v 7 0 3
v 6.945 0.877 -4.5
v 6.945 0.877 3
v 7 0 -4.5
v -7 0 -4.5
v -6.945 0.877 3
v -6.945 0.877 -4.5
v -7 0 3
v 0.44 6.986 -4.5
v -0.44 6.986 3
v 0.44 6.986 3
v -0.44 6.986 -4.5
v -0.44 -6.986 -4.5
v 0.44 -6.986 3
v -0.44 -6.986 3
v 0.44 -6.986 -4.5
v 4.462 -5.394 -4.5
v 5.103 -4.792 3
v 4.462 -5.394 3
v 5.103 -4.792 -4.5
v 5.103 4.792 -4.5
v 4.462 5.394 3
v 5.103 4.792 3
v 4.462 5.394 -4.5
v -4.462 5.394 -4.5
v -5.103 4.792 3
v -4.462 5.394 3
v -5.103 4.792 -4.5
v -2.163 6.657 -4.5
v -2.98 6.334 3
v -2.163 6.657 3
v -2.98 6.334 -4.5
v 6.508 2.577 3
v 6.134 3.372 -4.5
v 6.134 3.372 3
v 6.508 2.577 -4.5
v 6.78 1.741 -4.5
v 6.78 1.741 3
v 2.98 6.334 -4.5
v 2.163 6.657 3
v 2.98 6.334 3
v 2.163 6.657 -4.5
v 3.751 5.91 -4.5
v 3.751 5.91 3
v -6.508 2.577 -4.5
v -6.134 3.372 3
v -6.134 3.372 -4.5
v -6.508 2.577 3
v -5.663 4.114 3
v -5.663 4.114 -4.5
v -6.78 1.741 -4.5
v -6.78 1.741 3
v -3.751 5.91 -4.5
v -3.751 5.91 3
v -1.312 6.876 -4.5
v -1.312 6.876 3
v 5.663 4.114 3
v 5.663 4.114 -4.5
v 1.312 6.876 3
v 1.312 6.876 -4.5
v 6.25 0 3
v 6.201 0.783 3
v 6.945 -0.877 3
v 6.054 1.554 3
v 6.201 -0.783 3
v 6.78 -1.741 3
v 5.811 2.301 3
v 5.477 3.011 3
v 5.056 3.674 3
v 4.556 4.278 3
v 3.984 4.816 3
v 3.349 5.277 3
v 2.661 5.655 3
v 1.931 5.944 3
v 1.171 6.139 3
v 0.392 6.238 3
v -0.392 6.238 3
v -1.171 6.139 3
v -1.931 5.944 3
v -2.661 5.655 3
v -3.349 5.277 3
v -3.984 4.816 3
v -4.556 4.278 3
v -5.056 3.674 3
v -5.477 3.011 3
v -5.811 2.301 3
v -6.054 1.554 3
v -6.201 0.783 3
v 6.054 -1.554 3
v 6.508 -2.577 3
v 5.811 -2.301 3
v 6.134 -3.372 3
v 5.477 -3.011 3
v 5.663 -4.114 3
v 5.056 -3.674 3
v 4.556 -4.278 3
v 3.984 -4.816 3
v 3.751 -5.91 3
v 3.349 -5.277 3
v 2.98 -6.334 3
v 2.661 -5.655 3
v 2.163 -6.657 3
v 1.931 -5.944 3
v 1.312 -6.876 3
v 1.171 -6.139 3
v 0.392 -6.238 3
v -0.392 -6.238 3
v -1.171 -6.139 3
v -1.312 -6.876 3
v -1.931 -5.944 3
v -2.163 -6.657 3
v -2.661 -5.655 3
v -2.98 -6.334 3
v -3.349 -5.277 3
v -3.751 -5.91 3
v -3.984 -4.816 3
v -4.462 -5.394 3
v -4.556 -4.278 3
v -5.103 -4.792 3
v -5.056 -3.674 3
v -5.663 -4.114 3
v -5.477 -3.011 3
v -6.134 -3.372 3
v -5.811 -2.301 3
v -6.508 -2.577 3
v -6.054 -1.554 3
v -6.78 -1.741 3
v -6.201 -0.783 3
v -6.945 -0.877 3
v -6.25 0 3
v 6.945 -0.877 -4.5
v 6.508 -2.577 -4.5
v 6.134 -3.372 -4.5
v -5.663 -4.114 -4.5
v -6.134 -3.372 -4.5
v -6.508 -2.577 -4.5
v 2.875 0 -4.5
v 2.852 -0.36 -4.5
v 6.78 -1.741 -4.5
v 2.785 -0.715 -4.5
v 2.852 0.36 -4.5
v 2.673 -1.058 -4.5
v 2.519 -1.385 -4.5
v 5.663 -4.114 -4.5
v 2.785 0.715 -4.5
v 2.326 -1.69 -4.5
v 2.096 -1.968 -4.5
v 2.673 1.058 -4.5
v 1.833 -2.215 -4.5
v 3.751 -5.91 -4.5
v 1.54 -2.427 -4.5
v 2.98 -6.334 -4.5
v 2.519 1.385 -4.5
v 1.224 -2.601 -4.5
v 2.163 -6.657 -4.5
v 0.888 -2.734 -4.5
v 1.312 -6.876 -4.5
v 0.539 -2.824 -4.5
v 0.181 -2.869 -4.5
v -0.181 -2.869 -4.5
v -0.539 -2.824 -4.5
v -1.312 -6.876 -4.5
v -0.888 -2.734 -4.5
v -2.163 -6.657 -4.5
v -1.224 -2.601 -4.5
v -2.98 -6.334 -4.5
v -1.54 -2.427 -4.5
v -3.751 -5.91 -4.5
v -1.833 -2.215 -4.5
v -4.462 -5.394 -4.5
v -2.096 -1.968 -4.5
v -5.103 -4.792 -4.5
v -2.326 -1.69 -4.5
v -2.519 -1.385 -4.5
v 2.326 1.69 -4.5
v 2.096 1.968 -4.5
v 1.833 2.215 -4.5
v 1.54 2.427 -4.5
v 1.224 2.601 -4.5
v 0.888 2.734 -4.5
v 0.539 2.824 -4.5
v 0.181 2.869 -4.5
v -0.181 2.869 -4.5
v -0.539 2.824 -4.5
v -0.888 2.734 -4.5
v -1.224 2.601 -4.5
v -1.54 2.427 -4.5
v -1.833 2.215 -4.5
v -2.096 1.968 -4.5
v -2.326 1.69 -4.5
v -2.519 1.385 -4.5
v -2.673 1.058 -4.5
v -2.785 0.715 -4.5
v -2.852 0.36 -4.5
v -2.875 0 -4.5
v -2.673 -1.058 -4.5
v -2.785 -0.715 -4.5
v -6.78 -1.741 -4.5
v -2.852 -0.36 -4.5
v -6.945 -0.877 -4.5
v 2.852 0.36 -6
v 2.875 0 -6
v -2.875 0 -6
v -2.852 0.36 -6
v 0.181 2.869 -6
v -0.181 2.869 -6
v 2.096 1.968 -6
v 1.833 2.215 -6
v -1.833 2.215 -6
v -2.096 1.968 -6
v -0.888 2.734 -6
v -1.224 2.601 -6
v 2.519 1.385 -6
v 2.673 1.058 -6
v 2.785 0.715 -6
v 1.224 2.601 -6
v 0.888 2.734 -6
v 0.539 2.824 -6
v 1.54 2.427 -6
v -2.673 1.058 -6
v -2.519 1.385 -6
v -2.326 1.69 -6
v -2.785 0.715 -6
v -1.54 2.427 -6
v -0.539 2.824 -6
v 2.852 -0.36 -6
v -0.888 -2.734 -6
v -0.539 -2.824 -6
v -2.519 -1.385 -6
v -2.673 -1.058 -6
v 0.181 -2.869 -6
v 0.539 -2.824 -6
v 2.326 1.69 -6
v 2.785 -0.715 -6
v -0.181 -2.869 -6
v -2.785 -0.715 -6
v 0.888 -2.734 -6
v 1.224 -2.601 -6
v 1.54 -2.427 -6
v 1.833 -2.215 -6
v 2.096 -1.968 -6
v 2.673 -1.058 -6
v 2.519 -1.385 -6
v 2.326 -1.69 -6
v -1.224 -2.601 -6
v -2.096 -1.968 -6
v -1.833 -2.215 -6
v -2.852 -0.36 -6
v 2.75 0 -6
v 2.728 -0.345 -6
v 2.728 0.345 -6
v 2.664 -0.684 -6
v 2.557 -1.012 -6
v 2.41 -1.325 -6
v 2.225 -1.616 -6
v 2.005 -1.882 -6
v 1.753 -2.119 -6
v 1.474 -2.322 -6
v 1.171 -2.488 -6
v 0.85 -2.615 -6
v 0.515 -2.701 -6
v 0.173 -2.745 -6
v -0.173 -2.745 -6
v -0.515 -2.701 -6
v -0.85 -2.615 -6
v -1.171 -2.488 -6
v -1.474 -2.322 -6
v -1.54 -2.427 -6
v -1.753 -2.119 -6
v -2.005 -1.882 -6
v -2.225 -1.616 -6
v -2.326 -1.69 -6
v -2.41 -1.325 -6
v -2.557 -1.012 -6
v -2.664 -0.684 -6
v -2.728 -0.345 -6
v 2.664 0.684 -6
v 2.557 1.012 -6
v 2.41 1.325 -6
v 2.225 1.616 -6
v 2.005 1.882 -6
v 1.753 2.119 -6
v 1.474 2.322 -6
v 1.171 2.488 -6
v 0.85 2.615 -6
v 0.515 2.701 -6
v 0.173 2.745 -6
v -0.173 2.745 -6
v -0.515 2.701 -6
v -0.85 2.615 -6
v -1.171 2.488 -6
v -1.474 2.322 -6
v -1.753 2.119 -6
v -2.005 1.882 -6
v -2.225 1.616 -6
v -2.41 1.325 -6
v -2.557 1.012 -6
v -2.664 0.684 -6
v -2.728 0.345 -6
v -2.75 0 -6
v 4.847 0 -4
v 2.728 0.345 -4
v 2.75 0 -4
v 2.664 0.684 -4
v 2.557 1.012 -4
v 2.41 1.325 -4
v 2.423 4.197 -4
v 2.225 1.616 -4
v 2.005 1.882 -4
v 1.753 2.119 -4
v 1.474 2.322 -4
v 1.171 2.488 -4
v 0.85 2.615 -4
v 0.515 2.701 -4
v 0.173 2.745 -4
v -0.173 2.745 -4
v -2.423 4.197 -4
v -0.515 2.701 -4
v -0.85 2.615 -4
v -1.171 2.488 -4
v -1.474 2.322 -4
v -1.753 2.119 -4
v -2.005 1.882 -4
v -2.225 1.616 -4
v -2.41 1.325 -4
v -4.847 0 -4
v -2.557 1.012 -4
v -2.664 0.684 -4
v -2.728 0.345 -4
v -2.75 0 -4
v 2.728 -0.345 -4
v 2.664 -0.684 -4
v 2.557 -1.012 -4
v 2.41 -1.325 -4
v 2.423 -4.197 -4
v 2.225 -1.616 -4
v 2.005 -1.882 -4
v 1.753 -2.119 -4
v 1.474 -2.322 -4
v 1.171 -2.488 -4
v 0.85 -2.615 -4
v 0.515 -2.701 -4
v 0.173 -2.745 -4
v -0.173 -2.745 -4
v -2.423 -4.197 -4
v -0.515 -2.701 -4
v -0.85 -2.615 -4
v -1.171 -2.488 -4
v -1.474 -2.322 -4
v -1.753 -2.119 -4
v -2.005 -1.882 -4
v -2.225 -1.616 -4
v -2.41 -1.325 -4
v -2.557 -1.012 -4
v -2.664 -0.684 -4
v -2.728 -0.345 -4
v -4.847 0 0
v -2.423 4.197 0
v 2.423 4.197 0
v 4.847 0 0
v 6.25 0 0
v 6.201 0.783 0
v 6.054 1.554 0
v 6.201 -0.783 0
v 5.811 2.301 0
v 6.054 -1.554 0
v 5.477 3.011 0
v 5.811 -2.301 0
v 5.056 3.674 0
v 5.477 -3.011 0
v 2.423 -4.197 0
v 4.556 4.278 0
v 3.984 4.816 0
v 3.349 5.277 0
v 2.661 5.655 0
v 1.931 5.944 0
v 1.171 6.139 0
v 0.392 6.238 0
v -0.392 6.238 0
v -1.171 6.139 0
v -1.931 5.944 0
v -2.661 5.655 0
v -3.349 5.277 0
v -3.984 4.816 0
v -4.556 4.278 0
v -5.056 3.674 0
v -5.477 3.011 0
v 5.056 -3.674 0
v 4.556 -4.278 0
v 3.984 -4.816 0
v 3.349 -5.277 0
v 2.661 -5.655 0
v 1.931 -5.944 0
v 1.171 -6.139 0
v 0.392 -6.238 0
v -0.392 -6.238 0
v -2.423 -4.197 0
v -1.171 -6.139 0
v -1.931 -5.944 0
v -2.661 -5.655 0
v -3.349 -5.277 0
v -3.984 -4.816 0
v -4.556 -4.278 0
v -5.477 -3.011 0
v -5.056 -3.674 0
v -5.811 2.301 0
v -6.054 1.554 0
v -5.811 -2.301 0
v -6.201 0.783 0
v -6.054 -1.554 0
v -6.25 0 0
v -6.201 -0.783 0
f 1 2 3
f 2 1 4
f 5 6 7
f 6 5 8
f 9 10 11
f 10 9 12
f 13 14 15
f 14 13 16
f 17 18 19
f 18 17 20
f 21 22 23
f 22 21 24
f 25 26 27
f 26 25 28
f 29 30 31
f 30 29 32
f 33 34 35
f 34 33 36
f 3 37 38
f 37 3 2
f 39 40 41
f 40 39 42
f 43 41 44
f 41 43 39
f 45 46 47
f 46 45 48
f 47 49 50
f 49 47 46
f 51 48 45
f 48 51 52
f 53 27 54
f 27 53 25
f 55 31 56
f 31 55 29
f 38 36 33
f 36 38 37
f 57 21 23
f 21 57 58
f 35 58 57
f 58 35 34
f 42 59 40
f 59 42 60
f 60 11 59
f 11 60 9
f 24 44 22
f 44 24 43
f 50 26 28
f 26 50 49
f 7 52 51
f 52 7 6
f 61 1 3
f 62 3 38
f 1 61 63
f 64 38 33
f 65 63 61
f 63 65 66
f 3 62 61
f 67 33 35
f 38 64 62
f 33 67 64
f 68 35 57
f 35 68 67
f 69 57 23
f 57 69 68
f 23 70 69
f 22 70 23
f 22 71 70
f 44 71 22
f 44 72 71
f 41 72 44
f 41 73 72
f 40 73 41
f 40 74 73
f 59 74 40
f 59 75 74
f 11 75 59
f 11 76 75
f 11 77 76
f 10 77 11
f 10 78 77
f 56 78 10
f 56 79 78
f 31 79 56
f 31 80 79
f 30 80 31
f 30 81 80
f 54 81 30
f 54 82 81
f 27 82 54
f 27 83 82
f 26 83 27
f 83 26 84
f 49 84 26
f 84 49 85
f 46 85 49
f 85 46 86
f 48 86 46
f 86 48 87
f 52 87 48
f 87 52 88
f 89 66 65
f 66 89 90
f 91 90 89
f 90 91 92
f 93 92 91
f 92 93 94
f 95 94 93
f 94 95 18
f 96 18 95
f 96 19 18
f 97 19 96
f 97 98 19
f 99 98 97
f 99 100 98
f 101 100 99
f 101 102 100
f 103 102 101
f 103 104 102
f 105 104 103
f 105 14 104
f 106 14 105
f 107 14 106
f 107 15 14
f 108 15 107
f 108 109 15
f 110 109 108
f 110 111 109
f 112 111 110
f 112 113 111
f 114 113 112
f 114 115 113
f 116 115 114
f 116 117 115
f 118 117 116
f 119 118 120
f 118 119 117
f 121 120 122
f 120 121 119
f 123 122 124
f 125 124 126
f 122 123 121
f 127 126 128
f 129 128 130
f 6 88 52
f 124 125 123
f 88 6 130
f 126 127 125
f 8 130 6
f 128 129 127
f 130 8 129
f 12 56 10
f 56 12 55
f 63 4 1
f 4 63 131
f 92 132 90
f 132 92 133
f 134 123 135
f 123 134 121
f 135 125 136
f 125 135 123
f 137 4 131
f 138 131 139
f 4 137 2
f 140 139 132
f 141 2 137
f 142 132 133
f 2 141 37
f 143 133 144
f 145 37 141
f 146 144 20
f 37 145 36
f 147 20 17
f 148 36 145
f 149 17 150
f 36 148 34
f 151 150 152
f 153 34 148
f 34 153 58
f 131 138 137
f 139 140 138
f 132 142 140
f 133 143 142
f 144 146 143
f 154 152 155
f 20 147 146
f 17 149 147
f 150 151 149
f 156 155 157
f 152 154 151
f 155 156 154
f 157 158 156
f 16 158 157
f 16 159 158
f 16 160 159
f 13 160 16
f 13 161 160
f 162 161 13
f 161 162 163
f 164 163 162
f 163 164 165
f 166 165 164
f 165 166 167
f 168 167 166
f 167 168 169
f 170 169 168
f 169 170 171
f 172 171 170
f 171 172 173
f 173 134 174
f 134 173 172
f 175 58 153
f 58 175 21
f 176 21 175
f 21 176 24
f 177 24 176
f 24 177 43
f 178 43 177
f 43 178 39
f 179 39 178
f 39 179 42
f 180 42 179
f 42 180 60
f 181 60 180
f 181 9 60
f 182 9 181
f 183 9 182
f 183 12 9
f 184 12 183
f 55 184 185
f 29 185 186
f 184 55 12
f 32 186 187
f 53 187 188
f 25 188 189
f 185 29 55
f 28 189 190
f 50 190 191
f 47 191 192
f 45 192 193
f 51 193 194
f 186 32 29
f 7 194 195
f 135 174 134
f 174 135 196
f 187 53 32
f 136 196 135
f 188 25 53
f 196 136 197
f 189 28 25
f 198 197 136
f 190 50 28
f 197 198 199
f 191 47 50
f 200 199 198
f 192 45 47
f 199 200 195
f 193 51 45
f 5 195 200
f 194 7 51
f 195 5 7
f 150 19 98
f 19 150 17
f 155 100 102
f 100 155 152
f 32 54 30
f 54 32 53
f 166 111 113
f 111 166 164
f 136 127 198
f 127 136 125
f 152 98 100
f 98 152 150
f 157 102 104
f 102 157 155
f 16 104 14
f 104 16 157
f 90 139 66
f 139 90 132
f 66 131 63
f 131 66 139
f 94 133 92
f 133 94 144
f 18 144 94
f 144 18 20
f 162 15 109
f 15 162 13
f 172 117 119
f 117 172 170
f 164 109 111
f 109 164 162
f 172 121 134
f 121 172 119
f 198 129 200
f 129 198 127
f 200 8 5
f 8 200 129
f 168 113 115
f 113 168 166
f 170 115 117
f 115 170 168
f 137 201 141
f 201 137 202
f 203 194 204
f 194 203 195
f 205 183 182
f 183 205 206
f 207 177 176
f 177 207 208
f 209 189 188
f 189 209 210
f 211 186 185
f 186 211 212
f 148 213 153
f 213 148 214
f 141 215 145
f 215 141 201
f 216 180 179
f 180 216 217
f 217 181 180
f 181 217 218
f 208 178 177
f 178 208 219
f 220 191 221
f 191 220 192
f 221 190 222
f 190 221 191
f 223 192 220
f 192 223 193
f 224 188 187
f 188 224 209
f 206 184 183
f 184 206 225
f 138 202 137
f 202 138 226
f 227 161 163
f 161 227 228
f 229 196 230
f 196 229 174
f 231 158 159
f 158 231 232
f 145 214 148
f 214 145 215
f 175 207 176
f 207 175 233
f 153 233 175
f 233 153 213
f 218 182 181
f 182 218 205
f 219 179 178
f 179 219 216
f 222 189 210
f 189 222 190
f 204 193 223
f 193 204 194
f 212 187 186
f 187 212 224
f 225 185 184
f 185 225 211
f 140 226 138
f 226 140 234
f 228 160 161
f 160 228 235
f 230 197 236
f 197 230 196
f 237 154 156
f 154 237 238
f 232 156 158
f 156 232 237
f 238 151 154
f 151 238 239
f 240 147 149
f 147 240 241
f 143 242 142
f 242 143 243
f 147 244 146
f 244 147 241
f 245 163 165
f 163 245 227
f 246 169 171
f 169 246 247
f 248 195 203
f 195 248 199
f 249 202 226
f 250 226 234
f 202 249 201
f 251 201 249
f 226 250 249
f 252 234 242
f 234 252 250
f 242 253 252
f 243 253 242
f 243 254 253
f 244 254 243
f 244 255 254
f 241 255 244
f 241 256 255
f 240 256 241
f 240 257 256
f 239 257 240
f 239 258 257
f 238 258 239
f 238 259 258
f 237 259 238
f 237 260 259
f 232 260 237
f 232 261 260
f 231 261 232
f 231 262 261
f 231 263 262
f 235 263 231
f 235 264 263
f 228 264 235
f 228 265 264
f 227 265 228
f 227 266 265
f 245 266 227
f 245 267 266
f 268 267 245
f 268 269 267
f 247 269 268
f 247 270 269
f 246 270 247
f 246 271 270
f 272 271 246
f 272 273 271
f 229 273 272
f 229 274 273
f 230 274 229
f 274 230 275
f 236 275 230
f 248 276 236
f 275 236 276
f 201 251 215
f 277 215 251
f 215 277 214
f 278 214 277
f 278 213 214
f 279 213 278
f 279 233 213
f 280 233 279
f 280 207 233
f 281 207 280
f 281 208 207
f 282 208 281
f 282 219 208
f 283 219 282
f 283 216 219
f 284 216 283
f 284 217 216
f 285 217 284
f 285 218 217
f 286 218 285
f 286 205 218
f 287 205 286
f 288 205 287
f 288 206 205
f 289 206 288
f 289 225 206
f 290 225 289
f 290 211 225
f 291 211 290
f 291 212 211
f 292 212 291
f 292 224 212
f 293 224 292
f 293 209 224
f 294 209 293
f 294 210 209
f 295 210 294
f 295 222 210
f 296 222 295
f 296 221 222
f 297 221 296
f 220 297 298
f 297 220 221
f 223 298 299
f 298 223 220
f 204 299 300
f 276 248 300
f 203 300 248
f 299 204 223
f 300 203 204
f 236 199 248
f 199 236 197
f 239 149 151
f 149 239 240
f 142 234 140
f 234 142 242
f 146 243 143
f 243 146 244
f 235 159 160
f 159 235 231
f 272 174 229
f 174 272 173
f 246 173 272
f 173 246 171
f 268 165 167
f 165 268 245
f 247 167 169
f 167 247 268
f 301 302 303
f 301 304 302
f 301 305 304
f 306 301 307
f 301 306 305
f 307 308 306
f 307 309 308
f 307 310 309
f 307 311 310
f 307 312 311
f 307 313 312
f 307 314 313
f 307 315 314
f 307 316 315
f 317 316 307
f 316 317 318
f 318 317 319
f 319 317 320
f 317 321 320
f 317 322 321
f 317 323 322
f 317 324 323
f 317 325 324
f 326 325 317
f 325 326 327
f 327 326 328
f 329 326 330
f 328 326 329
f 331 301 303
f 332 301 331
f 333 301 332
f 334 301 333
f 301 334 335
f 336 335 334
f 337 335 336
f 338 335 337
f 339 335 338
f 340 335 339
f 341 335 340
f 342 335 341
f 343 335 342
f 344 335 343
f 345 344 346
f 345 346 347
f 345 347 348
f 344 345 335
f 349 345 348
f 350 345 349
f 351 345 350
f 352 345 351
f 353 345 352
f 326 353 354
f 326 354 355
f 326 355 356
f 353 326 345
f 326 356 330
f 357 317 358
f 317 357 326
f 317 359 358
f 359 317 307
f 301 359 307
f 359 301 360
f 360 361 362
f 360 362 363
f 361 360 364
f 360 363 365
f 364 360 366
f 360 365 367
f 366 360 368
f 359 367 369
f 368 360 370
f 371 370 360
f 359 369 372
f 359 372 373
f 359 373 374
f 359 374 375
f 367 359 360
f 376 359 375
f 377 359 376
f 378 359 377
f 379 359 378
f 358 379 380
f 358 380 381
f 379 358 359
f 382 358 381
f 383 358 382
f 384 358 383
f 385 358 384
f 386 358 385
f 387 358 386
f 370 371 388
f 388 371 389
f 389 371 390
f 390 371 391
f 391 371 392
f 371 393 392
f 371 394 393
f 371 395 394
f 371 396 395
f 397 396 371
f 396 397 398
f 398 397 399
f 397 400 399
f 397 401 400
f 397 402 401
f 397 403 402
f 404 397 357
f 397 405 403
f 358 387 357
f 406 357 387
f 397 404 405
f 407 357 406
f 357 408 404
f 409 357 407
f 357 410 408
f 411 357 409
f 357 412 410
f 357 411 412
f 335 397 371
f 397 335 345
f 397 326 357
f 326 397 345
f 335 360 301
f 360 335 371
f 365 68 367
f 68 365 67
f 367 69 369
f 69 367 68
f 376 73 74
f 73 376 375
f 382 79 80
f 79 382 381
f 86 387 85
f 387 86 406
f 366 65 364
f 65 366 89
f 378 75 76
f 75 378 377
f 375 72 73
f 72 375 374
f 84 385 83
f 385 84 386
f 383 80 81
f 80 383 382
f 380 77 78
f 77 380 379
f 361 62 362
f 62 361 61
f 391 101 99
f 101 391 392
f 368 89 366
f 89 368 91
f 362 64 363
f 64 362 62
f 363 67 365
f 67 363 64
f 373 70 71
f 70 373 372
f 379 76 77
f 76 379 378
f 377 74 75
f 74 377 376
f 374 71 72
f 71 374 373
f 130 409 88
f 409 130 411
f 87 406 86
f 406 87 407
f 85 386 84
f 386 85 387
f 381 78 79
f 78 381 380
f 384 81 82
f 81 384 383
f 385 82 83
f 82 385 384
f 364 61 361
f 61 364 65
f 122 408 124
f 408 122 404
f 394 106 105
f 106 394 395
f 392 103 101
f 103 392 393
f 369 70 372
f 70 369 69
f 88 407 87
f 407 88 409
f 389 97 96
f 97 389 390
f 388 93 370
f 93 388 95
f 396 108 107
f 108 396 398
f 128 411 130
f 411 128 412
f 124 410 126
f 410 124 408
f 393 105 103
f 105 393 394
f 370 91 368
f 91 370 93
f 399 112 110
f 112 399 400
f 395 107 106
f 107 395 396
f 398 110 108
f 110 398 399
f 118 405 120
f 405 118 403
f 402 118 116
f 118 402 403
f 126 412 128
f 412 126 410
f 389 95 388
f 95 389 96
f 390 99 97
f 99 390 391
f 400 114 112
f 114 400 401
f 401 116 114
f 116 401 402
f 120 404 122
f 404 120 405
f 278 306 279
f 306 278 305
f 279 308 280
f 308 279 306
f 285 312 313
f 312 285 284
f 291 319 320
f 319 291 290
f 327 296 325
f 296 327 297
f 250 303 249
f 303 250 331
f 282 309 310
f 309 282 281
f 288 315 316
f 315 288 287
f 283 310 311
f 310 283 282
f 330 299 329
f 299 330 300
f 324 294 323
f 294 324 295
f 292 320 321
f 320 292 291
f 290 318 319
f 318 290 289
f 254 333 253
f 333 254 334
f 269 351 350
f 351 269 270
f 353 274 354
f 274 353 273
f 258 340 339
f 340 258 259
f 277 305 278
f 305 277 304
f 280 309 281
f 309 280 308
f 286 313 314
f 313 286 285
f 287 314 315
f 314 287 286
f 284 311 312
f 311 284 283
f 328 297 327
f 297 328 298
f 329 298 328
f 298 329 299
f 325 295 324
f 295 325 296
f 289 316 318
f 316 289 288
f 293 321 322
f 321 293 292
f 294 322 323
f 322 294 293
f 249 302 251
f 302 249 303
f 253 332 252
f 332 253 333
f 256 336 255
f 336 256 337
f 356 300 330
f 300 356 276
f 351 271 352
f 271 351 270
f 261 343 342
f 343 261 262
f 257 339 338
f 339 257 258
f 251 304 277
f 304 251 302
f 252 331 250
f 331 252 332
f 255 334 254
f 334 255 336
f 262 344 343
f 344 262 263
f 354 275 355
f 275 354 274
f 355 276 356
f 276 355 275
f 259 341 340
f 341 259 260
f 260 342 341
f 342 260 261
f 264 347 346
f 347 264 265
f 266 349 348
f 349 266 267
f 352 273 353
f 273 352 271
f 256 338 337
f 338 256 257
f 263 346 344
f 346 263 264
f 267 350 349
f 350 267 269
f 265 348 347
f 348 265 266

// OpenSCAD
$fn = 50;

difference() {
	union() {
		translate(v = [0, 0, -4.5]) {
			cylinder(h = 7.5, r = 7.0);
		}
		#translate(v = [0, 0, -6.0]) {
			cylinder(h = 6, r = 2.875);
		}
	}
	union() {
		translate(v = [0, 0, 0]) {
			rotate(a = [0, 0, 0]) {
				difference() {
					union() {
						translate(v = [0, 0, -4]) {
							linear_extrude(height = 4) {
								polygon(points = [[4.8468, 0.0], [2.4234000000000004, 4.197451927062417], [-2.423399999999999, 4.197451927062417], [-4.8468, 5.935618106107392e-16], [-2.423400000000002, -4.197451927062416], [2.423399999999997, -4.197451927062419]]);
							}
						}
					}
					union();
				}
			}
		}
		#cylinder(h = 3, r = 6.25);
		#translate(v = [0, 0, -100.0]) {
			cylinder(h = 200, r = 2.75);
		}
	}
}
